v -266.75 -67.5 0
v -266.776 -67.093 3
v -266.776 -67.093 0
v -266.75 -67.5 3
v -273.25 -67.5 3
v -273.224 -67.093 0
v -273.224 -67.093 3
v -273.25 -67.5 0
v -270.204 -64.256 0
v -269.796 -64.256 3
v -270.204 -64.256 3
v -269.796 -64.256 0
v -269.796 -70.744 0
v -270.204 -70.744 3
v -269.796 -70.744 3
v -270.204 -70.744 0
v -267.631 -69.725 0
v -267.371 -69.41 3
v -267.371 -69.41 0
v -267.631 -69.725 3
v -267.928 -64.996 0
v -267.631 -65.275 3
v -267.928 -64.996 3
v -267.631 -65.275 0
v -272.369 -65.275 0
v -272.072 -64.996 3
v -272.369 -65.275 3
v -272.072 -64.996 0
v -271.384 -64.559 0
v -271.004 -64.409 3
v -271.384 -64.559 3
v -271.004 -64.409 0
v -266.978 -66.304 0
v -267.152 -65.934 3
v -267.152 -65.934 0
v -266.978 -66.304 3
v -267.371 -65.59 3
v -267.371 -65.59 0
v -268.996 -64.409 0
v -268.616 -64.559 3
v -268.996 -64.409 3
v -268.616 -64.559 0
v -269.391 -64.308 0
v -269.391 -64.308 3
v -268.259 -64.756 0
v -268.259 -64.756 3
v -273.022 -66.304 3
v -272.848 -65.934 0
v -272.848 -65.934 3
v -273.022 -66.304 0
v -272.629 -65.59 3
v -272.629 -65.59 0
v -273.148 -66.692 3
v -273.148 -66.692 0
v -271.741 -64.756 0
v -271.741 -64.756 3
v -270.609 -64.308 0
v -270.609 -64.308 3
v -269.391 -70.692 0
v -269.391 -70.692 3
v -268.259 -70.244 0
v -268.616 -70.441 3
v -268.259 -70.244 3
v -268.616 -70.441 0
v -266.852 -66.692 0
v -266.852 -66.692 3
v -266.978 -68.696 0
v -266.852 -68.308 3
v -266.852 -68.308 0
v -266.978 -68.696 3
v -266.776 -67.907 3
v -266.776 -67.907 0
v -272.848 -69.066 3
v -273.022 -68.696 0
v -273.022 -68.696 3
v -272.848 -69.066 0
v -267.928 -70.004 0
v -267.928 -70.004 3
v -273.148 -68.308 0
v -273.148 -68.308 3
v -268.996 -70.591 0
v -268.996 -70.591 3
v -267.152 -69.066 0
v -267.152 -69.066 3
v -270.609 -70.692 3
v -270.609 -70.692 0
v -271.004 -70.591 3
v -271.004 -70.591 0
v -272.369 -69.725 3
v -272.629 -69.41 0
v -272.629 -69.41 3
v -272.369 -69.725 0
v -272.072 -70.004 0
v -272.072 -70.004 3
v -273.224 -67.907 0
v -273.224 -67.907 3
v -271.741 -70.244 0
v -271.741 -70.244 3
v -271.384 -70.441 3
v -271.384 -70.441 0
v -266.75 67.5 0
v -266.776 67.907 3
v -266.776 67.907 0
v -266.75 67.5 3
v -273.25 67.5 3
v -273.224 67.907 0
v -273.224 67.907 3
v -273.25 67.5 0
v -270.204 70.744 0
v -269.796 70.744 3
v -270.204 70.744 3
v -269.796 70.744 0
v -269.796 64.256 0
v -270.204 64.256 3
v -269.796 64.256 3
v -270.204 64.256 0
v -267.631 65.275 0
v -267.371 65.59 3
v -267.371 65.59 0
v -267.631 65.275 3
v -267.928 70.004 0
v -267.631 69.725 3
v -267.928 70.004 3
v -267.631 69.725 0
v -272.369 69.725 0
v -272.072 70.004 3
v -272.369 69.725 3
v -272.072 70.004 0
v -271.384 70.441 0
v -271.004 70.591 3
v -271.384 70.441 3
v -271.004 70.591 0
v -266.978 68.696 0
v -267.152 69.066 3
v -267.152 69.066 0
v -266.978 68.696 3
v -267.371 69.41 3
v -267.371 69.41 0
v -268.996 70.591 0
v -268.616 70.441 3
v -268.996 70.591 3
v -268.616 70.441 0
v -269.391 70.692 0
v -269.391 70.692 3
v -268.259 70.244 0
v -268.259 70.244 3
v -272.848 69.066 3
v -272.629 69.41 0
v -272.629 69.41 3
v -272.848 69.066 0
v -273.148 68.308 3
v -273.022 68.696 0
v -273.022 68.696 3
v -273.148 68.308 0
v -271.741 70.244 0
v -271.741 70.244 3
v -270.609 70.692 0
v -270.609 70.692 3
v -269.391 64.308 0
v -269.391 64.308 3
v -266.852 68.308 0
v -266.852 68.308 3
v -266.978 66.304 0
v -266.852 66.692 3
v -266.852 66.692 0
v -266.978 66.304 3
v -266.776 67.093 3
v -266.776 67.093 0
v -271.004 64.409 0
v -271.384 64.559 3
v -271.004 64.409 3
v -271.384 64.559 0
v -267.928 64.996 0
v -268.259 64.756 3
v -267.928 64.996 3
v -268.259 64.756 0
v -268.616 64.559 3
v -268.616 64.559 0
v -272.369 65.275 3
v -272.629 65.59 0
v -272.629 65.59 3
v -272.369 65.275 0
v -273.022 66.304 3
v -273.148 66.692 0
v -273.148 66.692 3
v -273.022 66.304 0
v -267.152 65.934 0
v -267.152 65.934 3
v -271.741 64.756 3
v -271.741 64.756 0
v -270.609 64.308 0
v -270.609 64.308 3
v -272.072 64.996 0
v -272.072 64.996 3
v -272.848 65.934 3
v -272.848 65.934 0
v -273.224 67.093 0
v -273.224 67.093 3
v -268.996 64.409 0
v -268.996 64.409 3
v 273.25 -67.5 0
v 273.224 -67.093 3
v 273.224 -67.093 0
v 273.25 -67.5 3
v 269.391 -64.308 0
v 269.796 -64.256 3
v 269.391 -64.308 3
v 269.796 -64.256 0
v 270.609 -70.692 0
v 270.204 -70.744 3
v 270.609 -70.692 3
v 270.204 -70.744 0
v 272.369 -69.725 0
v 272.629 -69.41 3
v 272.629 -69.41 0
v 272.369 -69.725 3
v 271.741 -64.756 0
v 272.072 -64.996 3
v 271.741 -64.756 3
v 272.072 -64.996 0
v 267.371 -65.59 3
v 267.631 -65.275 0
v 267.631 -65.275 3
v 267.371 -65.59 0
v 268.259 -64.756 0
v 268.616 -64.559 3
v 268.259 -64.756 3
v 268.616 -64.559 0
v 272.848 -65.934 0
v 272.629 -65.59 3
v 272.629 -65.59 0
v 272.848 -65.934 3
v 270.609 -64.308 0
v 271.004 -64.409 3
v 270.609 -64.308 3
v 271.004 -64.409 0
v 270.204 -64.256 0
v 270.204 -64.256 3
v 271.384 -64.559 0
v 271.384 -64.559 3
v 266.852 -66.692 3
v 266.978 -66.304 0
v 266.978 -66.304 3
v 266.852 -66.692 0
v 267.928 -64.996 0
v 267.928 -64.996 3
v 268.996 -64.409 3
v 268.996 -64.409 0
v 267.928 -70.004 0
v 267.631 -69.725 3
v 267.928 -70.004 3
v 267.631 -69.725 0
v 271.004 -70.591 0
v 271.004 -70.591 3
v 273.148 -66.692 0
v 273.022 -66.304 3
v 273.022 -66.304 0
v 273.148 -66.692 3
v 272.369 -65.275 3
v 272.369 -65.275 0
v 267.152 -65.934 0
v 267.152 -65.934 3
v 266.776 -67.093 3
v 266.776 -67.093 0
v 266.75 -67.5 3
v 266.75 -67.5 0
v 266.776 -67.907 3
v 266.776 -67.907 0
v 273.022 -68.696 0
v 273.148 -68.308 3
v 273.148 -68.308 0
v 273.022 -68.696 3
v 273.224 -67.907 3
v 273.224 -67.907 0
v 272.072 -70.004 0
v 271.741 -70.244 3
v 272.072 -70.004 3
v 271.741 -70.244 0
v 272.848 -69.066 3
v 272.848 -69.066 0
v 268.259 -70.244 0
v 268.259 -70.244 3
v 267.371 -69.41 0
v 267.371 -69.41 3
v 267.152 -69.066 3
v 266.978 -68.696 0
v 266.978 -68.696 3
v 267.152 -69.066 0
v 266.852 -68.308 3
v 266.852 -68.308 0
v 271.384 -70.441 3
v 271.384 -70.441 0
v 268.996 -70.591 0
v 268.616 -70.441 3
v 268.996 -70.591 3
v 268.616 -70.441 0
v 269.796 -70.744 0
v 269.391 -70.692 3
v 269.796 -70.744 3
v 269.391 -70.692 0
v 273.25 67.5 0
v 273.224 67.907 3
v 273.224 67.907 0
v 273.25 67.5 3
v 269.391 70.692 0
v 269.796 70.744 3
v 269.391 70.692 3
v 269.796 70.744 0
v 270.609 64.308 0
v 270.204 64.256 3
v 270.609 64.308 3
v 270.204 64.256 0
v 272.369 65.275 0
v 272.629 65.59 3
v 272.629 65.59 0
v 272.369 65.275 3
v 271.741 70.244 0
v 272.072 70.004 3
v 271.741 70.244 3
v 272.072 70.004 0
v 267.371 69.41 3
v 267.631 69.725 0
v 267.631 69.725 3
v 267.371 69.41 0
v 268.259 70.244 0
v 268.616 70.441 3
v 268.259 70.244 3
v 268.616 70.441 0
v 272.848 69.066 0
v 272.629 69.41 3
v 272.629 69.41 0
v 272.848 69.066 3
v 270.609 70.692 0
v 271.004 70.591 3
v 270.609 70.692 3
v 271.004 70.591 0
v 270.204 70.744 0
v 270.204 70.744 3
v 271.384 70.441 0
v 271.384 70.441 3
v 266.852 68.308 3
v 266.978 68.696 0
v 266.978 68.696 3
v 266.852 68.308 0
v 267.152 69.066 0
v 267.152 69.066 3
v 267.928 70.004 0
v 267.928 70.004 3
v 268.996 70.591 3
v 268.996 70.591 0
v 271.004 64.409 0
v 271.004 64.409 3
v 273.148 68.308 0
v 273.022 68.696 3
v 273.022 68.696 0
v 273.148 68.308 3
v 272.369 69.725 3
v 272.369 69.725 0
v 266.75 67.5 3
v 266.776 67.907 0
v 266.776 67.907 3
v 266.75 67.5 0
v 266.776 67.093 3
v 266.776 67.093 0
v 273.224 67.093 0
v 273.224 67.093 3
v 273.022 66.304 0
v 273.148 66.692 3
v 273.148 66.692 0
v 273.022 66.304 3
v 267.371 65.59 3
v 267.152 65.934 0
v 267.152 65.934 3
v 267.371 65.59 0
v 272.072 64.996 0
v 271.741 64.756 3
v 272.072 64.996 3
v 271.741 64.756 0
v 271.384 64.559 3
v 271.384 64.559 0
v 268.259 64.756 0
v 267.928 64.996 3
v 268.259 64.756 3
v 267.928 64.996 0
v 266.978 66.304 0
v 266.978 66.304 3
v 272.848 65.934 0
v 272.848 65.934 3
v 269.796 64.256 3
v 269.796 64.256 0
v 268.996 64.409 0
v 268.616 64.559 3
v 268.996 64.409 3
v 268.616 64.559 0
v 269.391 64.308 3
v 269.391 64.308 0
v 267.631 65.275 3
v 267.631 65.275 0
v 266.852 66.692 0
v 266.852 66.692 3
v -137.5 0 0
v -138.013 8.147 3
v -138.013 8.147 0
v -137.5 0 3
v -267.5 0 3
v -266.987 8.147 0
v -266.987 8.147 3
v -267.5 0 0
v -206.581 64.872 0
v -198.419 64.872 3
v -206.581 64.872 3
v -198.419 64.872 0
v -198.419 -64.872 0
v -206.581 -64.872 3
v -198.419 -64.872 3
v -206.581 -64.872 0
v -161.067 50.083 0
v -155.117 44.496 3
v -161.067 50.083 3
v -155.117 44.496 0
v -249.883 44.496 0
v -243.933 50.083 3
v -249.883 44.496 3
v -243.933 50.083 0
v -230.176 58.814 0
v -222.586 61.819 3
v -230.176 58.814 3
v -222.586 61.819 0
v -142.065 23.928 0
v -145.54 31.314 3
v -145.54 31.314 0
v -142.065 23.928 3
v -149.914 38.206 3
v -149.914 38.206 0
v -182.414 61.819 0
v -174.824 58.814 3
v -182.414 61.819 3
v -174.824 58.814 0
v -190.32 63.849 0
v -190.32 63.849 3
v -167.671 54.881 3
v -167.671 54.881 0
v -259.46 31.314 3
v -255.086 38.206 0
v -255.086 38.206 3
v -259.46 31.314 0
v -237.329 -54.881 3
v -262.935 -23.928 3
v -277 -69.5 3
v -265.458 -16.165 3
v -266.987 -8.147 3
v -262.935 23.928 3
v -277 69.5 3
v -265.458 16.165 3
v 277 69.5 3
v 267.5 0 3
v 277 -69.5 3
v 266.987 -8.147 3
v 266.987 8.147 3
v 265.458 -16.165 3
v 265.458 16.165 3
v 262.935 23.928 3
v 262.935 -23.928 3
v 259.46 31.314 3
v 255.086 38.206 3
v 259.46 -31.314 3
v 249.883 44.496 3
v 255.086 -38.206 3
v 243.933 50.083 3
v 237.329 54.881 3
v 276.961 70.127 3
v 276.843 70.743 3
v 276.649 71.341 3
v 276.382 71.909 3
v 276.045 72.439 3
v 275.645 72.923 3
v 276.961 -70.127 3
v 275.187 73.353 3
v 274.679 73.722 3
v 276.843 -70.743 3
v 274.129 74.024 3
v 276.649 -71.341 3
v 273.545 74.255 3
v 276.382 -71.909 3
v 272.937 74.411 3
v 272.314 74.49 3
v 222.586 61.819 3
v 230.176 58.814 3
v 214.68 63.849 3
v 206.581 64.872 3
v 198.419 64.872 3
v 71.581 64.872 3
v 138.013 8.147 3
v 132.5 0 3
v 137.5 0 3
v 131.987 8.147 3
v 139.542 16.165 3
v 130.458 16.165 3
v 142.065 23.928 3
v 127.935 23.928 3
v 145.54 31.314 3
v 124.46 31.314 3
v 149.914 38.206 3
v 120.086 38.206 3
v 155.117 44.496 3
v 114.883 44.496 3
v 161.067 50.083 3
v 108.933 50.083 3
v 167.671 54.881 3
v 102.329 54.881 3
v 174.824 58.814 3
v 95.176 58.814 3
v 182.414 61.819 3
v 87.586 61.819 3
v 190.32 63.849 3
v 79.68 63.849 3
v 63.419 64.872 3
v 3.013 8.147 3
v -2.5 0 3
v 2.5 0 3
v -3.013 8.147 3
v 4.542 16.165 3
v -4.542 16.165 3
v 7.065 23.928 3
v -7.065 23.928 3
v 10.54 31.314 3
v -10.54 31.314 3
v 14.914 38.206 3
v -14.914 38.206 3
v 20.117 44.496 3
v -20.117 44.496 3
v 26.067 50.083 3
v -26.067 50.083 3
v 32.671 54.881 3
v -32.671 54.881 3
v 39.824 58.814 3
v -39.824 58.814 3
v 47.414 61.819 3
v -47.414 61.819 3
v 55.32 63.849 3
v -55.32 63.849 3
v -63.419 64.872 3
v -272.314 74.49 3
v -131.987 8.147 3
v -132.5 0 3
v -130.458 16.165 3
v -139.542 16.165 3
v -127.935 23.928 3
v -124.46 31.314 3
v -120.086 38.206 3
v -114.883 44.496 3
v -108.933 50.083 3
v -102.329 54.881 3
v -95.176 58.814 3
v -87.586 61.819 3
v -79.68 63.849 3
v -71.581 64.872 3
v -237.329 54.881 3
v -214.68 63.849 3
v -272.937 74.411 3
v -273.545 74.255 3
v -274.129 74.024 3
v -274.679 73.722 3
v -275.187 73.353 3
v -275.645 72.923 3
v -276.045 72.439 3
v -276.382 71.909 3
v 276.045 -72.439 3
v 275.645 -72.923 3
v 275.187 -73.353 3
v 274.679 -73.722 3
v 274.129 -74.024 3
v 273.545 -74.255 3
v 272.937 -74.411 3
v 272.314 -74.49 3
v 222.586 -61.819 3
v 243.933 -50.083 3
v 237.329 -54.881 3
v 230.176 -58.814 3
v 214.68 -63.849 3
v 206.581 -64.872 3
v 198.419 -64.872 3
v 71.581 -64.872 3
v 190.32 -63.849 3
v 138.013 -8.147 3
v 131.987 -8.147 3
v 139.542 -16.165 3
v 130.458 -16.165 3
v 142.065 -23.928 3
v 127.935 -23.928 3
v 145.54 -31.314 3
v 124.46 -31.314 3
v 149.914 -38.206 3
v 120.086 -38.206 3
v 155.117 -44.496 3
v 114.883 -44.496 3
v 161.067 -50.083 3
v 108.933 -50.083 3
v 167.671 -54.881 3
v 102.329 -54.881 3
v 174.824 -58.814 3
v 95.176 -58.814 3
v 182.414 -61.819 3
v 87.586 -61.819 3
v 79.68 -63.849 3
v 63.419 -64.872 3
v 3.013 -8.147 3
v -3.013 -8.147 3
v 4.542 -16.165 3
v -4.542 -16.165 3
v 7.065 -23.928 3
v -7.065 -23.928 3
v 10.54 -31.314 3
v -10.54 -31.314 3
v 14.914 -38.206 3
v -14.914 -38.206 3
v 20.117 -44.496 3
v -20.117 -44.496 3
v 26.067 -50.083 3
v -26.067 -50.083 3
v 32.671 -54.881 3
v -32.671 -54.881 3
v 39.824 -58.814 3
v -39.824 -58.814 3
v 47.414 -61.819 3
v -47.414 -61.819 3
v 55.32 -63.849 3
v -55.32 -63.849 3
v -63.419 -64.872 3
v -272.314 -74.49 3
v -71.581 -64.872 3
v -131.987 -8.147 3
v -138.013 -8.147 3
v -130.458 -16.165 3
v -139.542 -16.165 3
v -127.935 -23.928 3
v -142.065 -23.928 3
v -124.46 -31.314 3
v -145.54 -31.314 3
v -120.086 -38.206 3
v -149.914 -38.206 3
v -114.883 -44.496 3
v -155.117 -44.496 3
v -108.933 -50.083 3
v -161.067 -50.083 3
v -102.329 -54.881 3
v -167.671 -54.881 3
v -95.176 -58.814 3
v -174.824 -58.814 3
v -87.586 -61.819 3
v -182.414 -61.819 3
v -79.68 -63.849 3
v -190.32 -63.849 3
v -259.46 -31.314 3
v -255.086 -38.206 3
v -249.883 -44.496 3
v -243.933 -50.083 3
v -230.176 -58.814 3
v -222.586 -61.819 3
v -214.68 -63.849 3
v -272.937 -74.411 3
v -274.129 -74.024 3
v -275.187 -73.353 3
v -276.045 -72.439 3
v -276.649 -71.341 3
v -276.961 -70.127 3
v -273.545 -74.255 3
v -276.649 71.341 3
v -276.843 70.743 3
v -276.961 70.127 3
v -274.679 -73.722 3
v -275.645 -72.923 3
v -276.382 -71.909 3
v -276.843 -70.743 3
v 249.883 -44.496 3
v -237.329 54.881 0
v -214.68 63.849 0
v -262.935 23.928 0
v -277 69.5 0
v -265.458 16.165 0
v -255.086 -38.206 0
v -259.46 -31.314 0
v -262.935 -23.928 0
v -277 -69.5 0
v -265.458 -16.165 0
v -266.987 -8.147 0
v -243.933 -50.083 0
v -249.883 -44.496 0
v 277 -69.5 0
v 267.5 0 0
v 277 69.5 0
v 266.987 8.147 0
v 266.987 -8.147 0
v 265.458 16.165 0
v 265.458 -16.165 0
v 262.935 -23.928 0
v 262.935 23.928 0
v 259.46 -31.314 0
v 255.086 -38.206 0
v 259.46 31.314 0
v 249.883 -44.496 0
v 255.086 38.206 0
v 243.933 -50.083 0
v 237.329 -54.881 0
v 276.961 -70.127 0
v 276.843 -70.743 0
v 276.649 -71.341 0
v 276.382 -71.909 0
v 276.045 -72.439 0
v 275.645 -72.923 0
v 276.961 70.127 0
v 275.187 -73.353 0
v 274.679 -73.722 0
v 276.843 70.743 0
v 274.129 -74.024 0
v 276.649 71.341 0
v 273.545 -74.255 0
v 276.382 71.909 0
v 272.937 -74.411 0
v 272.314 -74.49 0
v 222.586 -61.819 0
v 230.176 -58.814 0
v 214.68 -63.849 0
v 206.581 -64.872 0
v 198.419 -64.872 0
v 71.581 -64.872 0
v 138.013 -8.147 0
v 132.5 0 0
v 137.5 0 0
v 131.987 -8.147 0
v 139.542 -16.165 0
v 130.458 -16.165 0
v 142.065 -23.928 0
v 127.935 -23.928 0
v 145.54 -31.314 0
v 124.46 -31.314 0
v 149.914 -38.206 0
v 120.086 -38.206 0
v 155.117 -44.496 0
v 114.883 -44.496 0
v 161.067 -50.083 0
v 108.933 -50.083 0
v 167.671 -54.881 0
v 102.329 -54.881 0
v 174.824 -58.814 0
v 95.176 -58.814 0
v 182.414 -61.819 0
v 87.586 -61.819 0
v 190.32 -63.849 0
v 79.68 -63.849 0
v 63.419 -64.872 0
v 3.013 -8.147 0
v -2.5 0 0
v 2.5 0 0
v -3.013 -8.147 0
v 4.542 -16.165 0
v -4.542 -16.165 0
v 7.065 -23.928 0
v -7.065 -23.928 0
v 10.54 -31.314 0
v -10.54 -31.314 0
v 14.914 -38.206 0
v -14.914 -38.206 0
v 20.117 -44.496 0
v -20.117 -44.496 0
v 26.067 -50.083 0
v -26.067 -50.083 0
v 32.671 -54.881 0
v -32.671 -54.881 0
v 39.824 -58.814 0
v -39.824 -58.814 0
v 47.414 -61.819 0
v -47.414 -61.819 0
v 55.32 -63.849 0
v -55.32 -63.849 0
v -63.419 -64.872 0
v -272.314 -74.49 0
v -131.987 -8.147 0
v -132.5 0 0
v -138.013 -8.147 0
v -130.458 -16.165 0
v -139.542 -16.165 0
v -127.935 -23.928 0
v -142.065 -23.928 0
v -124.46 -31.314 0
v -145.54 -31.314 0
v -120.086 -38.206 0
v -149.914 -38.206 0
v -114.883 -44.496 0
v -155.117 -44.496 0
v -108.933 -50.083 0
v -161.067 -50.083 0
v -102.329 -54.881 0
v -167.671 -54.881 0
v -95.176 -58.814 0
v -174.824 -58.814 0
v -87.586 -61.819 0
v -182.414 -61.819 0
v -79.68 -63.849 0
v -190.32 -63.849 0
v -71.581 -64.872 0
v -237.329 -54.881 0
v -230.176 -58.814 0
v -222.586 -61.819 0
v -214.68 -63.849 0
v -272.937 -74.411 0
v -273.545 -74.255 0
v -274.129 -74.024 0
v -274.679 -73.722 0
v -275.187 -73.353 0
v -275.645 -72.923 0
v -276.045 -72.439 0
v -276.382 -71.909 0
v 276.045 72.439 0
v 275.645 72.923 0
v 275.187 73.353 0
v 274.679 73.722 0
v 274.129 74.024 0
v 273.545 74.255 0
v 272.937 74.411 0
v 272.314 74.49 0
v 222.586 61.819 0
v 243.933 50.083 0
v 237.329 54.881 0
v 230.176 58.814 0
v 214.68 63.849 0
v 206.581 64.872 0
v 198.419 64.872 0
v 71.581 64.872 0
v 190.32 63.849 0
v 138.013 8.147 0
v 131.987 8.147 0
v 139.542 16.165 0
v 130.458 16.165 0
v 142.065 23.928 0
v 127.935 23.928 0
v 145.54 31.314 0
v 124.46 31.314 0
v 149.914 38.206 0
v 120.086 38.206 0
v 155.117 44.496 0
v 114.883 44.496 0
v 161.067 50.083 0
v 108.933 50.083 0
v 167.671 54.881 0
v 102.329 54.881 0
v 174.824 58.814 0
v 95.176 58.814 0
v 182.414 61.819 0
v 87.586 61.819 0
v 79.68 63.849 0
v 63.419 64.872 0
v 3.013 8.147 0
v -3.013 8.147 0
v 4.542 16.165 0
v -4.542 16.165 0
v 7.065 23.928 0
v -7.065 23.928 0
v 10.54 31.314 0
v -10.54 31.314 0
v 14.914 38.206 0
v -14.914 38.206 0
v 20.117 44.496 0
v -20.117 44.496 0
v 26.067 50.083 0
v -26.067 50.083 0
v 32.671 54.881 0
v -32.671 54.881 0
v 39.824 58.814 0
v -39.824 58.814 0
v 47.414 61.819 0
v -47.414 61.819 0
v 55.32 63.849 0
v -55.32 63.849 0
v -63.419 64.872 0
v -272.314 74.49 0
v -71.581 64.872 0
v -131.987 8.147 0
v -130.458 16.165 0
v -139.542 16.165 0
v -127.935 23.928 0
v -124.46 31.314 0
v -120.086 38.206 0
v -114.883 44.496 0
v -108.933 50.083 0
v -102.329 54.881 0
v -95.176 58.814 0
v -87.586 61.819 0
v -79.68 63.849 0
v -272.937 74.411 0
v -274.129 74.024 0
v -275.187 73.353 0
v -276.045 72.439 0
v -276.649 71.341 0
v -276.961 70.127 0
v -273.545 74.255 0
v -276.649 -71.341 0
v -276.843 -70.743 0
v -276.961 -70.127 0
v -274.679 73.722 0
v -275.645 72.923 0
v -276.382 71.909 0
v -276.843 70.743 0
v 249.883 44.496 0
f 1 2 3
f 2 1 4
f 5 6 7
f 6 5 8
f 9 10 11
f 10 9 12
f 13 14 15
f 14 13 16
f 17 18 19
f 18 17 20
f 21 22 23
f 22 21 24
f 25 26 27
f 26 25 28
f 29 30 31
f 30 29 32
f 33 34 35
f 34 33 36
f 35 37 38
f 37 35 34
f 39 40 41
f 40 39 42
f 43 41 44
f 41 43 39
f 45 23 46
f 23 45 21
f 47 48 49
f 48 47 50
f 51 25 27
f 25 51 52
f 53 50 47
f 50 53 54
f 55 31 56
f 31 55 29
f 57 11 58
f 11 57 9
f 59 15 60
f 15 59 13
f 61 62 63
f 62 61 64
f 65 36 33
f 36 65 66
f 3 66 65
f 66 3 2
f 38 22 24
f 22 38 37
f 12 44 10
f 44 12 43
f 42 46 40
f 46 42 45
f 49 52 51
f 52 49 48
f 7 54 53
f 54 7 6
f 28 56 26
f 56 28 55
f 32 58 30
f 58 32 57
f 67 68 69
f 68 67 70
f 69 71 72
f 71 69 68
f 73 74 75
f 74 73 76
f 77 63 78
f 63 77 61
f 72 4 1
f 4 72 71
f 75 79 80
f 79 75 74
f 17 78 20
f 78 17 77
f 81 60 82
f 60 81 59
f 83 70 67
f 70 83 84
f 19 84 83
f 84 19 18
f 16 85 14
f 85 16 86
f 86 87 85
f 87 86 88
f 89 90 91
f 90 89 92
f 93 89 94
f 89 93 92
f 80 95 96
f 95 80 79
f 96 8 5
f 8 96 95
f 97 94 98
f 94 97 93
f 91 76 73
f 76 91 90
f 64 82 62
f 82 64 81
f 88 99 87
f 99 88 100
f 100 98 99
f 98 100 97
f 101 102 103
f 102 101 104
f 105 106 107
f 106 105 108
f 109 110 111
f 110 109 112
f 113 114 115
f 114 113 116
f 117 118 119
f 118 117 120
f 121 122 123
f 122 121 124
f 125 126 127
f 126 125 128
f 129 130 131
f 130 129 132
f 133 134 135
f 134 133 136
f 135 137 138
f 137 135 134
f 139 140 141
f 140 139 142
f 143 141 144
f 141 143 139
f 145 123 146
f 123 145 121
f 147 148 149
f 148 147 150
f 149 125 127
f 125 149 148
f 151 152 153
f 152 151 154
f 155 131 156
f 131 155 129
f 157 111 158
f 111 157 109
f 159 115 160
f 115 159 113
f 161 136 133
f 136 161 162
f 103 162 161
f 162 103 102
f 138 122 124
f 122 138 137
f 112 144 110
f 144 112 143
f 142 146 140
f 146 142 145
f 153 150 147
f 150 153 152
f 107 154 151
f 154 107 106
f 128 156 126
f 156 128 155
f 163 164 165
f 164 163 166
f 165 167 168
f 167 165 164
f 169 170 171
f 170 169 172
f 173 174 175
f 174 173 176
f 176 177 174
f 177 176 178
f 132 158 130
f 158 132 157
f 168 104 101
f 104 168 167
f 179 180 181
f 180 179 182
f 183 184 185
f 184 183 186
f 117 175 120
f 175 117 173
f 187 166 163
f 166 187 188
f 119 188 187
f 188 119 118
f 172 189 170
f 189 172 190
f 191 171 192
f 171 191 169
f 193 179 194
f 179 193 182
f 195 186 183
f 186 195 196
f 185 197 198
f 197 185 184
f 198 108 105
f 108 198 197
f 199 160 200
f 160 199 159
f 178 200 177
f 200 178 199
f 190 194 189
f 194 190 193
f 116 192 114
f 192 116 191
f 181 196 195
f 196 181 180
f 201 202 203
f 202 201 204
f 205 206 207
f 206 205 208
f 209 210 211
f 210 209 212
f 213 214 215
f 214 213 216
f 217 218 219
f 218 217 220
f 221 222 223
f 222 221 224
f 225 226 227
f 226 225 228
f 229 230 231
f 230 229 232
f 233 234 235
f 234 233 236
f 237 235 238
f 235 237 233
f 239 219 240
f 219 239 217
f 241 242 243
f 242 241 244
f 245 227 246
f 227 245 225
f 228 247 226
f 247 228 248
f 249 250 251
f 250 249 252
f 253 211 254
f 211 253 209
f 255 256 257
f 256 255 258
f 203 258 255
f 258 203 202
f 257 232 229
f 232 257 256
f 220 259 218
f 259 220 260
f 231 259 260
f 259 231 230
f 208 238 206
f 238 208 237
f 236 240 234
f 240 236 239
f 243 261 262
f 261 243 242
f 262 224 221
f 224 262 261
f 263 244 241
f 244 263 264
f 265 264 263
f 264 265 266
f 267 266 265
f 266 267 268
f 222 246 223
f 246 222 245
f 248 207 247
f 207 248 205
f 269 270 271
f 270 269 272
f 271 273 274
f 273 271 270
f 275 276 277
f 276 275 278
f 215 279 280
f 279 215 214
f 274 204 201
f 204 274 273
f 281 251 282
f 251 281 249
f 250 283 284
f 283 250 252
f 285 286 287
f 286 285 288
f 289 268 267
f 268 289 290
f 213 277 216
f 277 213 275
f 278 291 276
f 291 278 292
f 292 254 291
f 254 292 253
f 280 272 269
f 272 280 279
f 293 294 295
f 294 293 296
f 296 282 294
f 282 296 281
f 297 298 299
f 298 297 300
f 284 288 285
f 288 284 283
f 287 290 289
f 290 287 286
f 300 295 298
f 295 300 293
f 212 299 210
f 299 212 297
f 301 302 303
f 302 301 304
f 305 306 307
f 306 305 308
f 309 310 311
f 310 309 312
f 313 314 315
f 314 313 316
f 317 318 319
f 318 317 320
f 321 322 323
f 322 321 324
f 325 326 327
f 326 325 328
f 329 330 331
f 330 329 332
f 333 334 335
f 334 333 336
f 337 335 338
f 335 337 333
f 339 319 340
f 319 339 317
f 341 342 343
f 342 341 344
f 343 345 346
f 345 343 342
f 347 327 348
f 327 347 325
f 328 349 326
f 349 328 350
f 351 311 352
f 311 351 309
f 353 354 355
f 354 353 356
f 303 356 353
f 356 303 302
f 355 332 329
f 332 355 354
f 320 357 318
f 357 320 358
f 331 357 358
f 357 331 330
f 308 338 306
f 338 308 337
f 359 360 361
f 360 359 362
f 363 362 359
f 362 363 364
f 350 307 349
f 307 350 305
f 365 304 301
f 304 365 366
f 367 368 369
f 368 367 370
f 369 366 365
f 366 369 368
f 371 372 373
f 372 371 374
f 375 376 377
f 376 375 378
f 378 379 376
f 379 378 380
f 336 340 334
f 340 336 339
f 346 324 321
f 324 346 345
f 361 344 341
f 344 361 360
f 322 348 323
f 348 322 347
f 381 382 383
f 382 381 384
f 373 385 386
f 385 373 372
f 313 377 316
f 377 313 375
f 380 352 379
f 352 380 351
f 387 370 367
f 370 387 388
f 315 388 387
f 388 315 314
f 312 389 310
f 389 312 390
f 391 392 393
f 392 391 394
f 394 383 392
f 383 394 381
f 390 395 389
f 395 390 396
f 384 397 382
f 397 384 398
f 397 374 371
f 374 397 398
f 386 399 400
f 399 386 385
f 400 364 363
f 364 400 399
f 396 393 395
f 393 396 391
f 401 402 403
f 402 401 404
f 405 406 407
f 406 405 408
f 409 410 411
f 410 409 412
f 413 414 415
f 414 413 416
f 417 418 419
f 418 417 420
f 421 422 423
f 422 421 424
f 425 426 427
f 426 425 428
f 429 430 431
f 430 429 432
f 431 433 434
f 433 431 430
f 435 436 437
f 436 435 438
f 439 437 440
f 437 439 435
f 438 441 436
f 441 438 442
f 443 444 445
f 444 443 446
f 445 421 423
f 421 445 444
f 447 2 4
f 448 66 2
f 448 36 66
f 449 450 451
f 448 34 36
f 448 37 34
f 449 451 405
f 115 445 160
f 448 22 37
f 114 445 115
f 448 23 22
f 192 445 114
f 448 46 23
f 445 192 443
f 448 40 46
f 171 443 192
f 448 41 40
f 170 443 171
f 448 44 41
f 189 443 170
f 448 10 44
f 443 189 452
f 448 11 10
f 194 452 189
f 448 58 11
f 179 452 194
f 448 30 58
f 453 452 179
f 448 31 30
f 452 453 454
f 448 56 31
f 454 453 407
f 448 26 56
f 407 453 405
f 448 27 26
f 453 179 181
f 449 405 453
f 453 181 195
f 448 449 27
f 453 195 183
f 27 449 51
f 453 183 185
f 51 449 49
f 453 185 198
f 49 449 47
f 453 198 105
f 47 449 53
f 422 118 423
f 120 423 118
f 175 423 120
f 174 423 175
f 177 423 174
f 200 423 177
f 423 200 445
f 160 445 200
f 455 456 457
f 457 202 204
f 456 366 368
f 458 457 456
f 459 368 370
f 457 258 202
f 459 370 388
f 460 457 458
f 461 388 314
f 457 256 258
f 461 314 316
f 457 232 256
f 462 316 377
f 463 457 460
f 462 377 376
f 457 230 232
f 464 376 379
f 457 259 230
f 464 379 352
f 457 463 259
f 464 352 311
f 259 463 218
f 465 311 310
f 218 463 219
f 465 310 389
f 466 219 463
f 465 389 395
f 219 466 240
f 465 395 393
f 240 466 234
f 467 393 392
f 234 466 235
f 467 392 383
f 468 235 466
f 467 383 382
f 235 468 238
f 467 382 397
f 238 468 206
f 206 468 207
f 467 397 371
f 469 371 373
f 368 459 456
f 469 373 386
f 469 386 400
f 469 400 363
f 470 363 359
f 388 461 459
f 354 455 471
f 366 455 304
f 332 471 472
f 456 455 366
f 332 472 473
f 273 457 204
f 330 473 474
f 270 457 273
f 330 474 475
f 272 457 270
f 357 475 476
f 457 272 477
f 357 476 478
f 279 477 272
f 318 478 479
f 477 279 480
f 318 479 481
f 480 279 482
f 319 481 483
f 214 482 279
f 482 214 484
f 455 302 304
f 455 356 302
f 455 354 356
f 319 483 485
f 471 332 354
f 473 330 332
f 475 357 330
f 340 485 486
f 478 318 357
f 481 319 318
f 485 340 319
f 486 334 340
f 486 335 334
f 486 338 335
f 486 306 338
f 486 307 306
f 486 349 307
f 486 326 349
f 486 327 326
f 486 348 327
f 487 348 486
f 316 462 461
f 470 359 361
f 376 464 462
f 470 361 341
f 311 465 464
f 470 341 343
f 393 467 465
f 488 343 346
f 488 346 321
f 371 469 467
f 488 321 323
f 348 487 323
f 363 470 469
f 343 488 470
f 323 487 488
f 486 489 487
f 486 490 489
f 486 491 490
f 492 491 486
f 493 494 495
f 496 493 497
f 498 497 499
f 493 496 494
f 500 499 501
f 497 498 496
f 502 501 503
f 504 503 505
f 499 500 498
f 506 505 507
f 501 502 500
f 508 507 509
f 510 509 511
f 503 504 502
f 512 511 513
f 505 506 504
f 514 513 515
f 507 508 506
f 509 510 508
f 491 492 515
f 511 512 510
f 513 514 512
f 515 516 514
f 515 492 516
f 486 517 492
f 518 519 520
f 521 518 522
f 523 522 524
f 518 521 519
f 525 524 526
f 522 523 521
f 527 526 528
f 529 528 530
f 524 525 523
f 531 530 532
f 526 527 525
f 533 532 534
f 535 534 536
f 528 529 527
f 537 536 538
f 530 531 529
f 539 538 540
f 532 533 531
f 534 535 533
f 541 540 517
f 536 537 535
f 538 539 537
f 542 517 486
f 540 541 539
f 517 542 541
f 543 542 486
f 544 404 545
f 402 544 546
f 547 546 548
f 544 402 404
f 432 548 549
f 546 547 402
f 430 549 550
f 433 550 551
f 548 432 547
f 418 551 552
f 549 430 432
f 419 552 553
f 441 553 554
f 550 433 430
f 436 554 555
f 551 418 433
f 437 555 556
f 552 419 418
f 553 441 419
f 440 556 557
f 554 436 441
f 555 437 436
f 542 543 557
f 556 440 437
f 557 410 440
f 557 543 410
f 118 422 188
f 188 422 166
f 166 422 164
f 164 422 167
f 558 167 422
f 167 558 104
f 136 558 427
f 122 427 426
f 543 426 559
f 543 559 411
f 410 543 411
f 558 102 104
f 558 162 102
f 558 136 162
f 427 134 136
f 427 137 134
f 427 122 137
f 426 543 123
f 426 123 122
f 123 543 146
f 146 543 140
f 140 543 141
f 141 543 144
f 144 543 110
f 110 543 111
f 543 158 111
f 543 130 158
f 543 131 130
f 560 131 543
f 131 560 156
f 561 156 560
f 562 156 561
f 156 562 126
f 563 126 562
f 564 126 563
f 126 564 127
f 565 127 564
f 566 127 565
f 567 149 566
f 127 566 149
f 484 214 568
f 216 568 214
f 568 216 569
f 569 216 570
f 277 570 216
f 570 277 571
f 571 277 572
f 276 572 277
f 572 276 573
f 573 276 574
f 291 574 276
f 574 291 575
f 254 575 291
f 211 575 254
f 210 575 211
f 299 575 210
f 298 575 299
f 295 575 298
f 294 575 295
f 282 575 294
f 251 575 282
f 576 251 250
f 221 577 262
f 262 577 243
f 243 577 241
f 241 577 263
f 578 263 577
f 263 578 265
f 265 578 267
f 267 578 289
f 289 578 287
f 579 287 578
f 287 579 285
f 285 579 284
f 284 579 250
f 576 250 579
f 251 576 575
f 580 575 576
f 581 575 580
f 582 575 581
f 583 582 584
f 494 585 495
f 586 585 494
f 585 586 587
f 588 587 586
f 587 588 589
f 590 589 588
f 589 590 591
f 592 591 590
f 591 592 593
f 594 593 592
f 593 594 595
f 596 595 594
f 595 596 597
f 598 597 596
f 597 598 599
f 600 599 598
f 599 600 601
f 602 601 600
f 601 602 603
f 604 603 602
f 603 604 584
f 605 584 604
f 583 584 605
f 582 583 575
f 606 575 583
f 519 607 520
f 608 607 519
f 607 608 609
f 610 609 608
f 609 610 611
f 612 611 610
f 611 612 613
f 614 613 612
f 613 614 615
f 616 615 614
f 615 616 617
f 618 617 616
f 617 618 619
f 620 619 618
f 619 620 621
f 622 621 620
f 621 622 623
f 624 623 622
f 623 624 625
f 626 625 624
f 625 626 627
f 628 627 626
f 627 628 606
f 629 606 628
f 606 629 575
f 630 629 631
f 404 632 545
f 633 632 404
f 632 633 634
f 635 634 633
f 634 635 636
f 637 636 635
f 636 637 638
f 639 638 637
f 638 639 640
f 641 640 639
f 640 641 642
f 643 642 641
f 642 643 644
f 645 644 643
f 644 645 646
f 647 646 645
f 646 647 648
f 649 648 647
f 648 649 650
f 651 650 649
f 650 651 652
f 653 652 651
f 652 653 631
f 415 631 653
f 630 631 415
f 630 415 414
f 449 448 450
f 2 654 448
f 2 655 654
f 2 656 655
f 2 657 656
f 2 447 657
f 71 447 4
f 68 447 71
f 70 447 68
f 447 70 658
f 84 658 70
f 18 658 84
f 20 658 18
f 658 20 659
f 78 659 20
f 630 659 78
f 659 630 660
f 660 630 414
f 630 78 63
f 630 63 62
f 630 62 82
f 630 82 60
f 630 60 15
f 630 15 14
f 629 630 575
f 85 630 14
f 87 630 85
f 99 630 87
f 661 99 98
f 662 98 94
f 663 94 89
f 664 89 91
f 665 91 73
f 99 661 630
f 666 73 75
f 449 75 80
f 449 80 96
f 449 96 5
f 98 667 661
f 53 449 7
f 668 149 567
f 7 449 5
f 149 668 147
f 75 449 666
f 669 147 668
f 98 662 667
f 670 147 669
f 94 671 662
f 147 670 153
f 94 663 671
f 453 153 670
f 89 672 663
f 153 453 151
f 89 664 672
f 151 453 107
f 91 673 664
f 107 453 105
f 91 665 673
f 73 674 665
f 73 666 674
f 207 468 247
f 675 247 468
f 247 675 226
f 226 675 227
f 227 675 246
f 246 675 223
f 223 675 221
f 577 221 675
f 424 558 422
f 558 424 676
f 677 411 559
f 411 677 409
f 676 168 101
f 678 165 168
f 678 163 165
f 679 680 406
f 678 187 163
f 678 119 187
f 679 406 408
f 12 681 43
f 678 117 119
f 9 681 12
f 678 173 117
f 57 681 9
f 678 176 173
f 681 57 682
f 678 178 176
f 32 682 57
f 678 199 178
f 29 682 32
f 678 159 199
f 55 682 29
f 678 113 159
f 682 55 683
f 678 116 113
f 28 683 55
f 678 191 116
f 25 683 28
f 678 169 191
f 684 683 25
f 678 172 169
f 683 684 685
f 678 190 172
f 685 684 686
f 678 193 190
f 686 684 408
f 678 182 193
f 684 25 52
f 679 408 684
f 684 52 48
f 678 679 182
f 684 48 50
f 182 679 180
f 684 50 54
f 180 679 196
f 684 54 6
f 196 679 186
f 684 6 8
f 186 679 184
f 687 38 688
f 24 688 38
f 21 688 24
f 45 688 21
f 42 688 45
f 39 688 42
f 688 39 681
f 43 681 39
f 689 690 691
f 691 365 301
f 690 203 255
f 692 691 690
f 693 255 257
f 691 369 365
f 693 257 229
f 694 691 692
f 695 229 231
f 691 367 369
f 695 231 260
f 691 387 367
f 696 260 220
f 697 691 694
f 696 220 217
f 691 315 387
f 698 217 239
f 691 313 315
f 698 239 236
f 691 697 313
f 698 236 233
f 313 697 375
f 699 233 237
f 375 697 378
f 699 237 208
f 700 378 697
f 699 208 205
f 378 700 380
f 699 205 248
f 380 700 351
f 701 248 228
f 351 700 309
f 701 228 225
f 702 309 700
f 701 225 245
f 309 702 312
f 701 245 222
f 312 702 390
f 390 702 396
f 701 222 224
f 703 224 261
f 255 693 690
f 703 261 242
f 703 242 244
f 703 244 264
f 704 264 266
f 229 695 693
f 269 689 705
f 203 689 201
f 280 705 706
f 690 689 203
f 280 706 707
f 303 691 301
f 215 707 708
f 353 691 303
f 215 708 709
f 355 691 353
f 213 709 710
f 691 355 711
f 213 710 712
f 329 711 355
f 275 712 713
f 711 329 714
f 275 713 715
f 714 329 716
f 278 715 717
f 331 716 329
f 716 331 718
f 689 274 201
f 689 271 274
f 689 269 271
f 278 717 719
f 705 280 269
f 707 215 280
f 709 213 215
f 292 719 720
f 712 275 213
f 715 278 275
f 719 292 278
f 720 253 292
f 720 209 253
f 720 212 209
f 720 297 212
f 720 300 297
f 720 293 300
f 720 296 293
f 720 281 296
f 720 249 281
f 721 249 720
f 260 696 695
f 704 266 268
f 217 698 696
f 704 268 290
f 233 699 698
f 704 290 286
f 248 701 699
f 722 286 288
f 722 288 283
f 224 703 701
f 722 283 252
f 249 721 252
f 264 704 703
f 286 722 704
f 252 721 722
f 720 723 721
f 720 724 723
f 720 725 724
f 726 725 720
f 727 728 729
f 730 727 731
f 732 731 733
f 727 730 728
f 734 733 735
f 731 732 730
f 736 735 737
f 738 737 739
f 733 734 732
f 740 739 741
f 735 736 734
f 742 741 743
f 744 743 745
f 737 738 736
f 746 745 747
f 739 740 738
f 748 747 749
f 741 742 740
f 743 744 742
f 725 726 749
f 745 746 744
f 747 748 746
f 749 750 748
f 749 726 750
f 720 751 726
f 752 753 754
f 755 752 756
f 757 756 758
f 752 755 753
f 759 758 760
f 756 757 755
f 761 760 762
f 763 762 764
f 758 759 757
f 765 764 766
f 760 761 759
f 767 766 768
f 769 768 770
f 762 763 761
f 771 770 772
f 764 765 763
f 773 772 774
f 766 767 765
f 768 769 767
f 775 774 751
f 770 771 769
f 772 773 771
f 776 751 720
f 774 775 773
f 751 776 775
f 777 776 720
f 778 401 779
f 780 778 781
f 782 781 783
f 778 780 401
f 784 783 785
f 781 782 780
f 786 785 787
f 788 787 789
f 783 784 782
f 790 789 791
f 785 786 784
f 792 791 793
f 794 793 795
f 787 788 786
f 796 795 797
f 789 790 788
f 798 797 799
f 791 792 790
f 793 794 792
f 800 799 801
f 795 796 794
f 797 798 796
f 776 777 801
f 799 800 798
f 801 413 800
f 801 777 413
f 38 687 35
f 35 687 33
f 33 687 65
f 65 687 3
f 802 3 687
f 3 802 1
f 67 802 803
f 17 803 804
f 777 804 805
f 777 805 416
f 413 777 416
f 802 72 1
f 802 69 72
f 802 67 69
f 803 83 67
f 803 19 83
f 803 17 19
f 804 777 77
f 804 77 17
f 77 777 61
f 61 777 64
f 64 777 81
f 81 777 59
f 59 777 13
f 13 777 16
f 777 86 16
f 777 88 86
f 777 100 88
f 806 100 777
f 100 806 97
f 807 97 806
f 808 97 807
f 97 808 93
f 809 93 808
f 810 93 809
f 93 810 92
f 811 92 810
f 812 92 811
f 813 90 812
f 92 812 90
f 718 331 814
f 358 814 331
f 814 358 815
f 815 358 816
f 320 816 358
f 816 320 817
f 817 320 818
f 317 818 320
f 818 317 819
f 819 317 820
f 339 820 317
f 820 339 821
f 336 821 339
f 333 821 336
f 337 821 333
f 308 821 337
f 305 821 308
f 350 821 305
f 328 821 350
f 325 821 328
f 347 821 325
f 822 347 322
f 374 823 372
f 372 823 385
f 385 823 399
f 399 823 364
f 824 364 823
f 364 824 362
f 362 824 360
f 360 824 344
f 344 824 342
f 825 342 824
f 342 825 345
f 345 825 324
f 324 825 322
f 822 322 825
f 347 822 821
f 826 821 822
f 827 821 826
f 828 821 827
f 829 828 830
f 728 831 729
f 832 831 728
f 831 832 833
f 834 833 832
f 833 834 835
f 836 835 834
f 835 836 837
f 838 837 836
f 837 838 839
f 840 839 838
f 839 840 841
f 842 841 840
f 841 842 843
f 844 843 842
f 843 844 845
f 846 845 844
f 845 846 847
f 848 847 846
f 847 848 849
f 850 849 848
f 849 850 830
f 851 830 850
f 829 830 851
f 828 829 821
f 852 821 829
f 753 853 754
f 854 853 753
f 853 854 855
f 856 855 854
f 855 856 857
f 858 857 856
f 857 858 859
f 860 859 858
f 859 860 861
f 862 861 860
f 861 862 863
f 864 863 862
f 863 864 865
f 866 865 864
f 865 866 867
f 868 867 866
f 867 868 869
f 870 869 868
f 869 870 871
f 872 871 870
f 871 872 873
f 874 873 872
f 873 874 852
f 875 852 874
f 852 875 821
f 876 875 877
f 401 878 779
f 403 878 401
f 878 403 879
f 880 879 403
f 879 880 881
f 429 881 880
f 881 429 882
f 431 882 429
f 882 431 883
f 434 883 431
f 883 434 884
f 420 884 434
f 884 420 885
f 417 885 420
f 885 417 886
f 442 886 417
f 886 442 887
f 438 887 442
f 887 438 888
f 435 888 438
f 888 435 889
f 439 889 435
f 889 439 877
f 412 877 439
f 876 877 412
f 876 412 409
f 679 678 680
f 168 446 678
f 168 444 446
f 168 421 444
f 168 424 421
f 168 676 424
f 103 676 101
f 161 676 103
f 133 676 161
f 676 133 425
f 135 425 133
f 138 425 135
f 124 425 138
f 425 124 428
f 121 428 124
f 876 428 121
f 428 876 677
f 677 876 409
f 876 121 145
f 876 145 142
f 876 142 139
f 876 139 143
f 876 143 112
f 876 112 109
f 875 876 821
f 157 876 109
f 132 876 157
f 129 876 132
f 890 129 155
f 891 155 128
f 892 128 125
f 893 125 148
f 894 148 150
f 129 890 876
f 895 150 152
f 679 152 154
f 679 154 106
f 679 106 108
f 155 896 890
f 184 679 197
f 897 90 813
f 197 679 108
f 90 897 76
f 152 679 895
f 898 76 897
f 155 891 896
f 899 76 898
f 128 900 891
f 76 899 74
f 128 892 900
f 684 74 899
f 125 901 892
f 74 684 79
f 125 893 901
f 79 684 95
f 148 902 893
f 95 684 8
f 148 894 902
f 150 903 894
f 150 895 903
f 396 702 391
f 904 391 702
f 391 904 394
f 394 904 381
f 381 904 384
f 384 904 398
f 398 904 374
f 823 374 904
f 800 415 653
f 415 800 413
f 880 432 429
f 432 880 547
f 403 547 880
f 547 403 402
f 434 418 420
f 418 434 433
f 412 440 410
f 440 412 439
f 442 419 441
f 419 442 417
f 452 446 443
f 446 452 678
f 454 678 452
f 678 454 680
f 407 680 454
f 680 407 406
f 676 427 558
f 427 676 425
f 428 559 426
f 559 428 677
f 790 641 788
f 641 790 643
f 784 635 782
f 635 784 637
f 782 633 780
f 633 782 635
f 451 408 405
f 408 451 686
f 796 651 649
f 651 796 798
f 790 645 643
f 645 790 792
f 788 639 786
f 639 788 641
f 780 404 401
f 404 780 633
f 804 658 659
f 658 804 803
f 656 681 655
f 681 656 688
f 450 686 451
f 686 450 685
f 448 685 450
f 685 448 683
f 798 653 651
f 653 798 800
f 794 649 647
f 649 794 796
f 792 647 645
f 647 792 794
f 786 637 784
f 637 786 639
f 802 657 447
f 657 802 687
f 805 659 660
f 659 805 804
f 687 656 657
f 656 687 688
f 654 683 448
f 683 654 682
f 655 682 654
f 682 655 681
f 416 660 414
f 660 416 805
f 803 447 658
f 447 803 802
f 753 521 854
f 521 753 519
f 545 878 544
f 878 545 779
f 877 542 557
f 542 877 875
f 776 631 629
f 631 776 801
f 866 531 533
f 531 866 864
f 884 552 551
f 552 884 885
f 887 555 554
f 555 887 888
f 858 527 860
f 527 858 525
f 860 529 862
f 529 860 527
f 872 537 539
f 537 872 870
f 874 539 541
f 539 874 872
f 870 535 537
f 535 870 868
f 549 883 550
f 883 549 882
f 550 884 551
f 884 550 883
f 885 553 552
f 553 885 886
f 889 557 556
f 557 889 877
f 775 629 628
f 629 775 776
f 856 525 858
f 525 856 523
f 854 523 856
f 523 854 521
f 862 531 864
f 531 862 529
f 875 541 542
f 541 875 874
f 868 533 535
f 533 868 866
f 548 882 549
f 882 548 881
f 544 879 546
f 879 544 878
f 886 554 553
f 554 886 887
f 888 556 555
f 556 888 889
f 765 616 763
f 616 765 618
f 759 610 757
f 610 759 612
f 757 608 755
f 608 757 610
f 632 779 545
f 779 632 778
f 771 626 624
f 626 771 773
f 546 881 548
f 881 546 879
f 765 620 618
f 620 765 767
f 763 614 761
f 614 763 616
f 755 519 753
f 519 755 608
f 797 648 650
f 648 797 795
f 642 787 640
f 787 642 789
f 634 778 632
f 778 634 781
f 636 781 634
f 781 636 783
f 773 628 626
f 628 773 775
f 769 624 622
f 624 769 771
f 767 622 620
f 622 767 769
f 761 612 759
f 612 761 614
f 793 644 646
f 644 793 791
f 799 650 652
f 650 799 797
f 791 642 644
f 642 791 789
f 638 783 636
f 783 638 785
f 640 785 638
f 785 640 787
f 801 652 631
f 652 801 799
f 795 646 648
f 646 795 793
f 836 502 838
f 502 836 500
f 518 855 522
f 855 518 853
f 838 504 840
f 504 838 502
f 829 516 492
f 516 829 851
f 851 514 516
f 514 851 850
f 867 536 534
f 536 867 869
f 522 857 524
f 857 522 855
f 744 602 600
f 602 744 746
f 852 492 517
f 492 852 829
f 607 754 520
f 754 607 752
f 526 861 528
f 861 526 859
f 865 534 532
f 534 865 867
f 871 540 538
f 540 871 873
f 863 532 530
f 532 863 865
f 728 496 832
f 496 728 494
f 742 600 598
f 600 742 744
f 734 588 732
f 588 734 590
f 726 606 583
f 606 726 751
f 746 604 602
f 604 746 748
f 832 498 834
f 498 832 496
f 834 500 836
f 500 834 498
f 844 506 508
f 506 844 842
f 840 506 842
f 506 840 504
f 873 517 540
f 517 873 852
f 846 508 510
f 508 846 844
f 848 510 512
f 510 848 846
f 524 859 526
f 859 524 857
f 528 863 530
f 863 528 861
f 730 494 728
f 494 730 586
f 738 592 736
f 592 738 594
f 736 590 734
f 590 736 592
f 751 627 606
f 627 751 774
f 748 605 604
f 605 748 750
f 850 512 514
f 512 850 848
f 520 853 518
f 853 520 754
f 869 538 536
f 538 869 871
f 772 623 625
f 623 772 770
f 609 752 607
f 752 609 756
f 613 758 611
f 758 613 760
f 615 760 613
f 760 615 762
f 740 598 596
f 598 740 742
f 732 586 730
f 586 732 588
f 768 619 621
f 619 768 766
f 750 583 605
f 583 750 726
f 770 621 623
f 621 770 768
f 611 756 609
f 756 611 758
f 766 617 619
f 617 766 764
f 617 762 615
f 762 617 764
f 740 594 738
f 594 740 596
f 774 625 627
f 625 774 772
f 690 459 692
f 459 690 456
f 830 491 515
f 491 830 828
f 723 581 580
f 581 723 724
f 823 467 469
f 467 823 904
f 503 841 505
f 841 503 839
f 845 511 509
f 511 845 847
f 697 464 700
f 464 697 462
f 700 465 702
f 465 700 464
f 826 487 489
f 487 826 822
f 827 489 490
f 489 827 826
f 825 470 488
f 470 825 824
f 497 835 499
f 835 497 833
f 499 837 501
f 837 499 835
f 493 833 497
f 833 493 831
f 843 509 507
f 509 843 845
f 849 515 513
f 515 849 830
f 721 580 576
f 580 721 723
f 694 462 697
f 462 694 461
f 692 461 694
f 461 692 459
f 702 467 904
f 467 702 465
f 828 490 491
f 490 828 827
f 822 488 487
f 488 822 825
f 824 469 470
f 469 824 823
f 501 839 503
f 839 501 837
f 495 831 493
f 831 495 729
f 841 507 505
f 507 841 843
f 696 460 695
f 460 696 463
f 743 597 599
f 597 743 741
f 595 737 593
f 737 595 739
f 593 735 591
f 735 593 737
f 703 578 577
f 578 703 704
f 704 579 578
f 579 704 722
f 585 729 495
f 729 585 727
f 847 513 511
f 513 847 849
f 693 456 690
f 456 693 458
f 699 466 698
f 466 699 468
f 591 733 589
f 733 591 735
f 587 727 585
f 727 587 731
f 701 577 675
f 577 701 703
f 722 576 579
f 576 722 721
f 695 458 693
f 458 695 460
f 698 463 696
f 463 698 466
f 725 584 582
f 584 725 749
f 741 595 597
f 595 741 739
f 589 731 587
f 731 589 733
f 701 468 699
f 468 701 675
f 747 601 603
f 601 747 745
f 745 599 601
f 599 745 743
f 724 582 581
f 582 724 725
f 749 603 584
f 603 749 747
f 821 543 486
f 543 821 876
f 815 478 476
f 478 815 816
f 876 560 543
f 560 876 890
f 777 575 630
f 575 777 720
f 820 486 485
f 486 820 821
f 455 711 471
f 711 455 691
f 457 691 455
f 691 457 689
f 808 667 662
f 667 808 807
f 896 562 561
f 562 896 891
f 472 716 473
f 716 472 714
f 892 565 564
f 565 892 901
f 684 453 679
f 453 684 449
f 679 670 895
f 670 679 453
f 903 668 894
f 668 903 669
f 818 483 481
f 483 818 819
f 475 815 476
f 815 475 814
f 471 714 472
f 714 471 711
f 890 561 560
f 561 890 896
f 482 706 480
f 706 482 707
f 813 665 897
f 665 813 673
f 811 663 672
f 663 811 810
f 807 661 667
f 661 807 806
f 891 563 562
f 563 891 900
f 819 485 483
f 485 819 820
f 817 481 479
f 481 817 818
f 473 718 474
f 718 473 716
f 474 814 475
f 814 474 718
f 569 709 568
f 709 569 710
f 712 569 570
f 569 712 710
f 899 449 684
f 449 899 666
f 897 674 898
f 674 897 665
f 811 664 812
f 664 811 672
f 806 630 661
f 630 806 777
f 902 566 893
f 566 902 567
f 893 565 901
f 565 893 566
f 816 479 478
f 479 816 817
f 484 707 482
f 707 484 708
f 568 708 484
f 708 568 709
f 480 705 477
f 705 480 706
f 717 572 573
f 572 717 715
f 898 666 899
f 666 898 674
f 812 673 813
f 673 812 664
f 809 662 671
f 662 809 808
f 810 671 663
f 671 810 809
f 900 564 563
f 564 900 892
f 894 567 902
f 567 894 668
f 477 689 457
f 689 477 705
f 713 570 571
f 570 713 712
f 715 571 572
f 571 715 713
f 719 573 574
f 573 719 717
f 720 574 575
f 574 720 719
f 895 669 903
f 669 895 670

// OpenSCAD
$fn = 50;


difference() {
	union() {
		hull() {
			translate(v = [-272.0000000000, 69.5000000000, 0]) {
				cylinder(h = 3, r = 5);
			}
			translate(v = [272.0000000000, 69.5000000000, 0]) {
				cylinder(h = 3, r = 5);
			}
			translate(v = [-272.0000000000, -69.5000000000, 0]) {
				cylinder(h = 3, r = 5);
			}
			translate(v = [272.0000000000, -69.5000000000, 0]) {
				cylinder(h = 3, r = 5);
			}
		}
	}
	union() {
		#translate(v = [-270.0000000000, -67.5000000000, -100.0000000000]) {
			cylinder(h = 200, r = 3.2500000000);
		}
		#translate(v = [-270.0000000000, 67.5000000000, -100.0000000000]) {
			cylinder(h = 200, r = 3.2500000000);
		}
		#translate(v = [270.0000000000, -67.5000000000, -100.0000000000]) {
			cylinder(h = 200, r = 3.2500000000);
		}
		#translate(v = [270.0000000000, 67.5000000000, -100.0000000000]) {
			cylinder(h = 200, r = 3.2500000000);
		}
		#translate(v = [-202.5000000000, 0, 0]) {
			cylinder(h = 3, r = 65.0000000000);
		}
		#translate(v = [-67.5000000000, 0, 0]) {
			cylinder(h = 3, r = 65.0000000000);
		}
		#translate(v = [67.5000000000, 0, 0]) {
			cylinder(h = 3, r = 65.0000000000);
		}
		#translate(v = [202.5000000000, 0, 0]) {
			cylinder(h = 3, r = 65.0000000000);
		}
	}
}
